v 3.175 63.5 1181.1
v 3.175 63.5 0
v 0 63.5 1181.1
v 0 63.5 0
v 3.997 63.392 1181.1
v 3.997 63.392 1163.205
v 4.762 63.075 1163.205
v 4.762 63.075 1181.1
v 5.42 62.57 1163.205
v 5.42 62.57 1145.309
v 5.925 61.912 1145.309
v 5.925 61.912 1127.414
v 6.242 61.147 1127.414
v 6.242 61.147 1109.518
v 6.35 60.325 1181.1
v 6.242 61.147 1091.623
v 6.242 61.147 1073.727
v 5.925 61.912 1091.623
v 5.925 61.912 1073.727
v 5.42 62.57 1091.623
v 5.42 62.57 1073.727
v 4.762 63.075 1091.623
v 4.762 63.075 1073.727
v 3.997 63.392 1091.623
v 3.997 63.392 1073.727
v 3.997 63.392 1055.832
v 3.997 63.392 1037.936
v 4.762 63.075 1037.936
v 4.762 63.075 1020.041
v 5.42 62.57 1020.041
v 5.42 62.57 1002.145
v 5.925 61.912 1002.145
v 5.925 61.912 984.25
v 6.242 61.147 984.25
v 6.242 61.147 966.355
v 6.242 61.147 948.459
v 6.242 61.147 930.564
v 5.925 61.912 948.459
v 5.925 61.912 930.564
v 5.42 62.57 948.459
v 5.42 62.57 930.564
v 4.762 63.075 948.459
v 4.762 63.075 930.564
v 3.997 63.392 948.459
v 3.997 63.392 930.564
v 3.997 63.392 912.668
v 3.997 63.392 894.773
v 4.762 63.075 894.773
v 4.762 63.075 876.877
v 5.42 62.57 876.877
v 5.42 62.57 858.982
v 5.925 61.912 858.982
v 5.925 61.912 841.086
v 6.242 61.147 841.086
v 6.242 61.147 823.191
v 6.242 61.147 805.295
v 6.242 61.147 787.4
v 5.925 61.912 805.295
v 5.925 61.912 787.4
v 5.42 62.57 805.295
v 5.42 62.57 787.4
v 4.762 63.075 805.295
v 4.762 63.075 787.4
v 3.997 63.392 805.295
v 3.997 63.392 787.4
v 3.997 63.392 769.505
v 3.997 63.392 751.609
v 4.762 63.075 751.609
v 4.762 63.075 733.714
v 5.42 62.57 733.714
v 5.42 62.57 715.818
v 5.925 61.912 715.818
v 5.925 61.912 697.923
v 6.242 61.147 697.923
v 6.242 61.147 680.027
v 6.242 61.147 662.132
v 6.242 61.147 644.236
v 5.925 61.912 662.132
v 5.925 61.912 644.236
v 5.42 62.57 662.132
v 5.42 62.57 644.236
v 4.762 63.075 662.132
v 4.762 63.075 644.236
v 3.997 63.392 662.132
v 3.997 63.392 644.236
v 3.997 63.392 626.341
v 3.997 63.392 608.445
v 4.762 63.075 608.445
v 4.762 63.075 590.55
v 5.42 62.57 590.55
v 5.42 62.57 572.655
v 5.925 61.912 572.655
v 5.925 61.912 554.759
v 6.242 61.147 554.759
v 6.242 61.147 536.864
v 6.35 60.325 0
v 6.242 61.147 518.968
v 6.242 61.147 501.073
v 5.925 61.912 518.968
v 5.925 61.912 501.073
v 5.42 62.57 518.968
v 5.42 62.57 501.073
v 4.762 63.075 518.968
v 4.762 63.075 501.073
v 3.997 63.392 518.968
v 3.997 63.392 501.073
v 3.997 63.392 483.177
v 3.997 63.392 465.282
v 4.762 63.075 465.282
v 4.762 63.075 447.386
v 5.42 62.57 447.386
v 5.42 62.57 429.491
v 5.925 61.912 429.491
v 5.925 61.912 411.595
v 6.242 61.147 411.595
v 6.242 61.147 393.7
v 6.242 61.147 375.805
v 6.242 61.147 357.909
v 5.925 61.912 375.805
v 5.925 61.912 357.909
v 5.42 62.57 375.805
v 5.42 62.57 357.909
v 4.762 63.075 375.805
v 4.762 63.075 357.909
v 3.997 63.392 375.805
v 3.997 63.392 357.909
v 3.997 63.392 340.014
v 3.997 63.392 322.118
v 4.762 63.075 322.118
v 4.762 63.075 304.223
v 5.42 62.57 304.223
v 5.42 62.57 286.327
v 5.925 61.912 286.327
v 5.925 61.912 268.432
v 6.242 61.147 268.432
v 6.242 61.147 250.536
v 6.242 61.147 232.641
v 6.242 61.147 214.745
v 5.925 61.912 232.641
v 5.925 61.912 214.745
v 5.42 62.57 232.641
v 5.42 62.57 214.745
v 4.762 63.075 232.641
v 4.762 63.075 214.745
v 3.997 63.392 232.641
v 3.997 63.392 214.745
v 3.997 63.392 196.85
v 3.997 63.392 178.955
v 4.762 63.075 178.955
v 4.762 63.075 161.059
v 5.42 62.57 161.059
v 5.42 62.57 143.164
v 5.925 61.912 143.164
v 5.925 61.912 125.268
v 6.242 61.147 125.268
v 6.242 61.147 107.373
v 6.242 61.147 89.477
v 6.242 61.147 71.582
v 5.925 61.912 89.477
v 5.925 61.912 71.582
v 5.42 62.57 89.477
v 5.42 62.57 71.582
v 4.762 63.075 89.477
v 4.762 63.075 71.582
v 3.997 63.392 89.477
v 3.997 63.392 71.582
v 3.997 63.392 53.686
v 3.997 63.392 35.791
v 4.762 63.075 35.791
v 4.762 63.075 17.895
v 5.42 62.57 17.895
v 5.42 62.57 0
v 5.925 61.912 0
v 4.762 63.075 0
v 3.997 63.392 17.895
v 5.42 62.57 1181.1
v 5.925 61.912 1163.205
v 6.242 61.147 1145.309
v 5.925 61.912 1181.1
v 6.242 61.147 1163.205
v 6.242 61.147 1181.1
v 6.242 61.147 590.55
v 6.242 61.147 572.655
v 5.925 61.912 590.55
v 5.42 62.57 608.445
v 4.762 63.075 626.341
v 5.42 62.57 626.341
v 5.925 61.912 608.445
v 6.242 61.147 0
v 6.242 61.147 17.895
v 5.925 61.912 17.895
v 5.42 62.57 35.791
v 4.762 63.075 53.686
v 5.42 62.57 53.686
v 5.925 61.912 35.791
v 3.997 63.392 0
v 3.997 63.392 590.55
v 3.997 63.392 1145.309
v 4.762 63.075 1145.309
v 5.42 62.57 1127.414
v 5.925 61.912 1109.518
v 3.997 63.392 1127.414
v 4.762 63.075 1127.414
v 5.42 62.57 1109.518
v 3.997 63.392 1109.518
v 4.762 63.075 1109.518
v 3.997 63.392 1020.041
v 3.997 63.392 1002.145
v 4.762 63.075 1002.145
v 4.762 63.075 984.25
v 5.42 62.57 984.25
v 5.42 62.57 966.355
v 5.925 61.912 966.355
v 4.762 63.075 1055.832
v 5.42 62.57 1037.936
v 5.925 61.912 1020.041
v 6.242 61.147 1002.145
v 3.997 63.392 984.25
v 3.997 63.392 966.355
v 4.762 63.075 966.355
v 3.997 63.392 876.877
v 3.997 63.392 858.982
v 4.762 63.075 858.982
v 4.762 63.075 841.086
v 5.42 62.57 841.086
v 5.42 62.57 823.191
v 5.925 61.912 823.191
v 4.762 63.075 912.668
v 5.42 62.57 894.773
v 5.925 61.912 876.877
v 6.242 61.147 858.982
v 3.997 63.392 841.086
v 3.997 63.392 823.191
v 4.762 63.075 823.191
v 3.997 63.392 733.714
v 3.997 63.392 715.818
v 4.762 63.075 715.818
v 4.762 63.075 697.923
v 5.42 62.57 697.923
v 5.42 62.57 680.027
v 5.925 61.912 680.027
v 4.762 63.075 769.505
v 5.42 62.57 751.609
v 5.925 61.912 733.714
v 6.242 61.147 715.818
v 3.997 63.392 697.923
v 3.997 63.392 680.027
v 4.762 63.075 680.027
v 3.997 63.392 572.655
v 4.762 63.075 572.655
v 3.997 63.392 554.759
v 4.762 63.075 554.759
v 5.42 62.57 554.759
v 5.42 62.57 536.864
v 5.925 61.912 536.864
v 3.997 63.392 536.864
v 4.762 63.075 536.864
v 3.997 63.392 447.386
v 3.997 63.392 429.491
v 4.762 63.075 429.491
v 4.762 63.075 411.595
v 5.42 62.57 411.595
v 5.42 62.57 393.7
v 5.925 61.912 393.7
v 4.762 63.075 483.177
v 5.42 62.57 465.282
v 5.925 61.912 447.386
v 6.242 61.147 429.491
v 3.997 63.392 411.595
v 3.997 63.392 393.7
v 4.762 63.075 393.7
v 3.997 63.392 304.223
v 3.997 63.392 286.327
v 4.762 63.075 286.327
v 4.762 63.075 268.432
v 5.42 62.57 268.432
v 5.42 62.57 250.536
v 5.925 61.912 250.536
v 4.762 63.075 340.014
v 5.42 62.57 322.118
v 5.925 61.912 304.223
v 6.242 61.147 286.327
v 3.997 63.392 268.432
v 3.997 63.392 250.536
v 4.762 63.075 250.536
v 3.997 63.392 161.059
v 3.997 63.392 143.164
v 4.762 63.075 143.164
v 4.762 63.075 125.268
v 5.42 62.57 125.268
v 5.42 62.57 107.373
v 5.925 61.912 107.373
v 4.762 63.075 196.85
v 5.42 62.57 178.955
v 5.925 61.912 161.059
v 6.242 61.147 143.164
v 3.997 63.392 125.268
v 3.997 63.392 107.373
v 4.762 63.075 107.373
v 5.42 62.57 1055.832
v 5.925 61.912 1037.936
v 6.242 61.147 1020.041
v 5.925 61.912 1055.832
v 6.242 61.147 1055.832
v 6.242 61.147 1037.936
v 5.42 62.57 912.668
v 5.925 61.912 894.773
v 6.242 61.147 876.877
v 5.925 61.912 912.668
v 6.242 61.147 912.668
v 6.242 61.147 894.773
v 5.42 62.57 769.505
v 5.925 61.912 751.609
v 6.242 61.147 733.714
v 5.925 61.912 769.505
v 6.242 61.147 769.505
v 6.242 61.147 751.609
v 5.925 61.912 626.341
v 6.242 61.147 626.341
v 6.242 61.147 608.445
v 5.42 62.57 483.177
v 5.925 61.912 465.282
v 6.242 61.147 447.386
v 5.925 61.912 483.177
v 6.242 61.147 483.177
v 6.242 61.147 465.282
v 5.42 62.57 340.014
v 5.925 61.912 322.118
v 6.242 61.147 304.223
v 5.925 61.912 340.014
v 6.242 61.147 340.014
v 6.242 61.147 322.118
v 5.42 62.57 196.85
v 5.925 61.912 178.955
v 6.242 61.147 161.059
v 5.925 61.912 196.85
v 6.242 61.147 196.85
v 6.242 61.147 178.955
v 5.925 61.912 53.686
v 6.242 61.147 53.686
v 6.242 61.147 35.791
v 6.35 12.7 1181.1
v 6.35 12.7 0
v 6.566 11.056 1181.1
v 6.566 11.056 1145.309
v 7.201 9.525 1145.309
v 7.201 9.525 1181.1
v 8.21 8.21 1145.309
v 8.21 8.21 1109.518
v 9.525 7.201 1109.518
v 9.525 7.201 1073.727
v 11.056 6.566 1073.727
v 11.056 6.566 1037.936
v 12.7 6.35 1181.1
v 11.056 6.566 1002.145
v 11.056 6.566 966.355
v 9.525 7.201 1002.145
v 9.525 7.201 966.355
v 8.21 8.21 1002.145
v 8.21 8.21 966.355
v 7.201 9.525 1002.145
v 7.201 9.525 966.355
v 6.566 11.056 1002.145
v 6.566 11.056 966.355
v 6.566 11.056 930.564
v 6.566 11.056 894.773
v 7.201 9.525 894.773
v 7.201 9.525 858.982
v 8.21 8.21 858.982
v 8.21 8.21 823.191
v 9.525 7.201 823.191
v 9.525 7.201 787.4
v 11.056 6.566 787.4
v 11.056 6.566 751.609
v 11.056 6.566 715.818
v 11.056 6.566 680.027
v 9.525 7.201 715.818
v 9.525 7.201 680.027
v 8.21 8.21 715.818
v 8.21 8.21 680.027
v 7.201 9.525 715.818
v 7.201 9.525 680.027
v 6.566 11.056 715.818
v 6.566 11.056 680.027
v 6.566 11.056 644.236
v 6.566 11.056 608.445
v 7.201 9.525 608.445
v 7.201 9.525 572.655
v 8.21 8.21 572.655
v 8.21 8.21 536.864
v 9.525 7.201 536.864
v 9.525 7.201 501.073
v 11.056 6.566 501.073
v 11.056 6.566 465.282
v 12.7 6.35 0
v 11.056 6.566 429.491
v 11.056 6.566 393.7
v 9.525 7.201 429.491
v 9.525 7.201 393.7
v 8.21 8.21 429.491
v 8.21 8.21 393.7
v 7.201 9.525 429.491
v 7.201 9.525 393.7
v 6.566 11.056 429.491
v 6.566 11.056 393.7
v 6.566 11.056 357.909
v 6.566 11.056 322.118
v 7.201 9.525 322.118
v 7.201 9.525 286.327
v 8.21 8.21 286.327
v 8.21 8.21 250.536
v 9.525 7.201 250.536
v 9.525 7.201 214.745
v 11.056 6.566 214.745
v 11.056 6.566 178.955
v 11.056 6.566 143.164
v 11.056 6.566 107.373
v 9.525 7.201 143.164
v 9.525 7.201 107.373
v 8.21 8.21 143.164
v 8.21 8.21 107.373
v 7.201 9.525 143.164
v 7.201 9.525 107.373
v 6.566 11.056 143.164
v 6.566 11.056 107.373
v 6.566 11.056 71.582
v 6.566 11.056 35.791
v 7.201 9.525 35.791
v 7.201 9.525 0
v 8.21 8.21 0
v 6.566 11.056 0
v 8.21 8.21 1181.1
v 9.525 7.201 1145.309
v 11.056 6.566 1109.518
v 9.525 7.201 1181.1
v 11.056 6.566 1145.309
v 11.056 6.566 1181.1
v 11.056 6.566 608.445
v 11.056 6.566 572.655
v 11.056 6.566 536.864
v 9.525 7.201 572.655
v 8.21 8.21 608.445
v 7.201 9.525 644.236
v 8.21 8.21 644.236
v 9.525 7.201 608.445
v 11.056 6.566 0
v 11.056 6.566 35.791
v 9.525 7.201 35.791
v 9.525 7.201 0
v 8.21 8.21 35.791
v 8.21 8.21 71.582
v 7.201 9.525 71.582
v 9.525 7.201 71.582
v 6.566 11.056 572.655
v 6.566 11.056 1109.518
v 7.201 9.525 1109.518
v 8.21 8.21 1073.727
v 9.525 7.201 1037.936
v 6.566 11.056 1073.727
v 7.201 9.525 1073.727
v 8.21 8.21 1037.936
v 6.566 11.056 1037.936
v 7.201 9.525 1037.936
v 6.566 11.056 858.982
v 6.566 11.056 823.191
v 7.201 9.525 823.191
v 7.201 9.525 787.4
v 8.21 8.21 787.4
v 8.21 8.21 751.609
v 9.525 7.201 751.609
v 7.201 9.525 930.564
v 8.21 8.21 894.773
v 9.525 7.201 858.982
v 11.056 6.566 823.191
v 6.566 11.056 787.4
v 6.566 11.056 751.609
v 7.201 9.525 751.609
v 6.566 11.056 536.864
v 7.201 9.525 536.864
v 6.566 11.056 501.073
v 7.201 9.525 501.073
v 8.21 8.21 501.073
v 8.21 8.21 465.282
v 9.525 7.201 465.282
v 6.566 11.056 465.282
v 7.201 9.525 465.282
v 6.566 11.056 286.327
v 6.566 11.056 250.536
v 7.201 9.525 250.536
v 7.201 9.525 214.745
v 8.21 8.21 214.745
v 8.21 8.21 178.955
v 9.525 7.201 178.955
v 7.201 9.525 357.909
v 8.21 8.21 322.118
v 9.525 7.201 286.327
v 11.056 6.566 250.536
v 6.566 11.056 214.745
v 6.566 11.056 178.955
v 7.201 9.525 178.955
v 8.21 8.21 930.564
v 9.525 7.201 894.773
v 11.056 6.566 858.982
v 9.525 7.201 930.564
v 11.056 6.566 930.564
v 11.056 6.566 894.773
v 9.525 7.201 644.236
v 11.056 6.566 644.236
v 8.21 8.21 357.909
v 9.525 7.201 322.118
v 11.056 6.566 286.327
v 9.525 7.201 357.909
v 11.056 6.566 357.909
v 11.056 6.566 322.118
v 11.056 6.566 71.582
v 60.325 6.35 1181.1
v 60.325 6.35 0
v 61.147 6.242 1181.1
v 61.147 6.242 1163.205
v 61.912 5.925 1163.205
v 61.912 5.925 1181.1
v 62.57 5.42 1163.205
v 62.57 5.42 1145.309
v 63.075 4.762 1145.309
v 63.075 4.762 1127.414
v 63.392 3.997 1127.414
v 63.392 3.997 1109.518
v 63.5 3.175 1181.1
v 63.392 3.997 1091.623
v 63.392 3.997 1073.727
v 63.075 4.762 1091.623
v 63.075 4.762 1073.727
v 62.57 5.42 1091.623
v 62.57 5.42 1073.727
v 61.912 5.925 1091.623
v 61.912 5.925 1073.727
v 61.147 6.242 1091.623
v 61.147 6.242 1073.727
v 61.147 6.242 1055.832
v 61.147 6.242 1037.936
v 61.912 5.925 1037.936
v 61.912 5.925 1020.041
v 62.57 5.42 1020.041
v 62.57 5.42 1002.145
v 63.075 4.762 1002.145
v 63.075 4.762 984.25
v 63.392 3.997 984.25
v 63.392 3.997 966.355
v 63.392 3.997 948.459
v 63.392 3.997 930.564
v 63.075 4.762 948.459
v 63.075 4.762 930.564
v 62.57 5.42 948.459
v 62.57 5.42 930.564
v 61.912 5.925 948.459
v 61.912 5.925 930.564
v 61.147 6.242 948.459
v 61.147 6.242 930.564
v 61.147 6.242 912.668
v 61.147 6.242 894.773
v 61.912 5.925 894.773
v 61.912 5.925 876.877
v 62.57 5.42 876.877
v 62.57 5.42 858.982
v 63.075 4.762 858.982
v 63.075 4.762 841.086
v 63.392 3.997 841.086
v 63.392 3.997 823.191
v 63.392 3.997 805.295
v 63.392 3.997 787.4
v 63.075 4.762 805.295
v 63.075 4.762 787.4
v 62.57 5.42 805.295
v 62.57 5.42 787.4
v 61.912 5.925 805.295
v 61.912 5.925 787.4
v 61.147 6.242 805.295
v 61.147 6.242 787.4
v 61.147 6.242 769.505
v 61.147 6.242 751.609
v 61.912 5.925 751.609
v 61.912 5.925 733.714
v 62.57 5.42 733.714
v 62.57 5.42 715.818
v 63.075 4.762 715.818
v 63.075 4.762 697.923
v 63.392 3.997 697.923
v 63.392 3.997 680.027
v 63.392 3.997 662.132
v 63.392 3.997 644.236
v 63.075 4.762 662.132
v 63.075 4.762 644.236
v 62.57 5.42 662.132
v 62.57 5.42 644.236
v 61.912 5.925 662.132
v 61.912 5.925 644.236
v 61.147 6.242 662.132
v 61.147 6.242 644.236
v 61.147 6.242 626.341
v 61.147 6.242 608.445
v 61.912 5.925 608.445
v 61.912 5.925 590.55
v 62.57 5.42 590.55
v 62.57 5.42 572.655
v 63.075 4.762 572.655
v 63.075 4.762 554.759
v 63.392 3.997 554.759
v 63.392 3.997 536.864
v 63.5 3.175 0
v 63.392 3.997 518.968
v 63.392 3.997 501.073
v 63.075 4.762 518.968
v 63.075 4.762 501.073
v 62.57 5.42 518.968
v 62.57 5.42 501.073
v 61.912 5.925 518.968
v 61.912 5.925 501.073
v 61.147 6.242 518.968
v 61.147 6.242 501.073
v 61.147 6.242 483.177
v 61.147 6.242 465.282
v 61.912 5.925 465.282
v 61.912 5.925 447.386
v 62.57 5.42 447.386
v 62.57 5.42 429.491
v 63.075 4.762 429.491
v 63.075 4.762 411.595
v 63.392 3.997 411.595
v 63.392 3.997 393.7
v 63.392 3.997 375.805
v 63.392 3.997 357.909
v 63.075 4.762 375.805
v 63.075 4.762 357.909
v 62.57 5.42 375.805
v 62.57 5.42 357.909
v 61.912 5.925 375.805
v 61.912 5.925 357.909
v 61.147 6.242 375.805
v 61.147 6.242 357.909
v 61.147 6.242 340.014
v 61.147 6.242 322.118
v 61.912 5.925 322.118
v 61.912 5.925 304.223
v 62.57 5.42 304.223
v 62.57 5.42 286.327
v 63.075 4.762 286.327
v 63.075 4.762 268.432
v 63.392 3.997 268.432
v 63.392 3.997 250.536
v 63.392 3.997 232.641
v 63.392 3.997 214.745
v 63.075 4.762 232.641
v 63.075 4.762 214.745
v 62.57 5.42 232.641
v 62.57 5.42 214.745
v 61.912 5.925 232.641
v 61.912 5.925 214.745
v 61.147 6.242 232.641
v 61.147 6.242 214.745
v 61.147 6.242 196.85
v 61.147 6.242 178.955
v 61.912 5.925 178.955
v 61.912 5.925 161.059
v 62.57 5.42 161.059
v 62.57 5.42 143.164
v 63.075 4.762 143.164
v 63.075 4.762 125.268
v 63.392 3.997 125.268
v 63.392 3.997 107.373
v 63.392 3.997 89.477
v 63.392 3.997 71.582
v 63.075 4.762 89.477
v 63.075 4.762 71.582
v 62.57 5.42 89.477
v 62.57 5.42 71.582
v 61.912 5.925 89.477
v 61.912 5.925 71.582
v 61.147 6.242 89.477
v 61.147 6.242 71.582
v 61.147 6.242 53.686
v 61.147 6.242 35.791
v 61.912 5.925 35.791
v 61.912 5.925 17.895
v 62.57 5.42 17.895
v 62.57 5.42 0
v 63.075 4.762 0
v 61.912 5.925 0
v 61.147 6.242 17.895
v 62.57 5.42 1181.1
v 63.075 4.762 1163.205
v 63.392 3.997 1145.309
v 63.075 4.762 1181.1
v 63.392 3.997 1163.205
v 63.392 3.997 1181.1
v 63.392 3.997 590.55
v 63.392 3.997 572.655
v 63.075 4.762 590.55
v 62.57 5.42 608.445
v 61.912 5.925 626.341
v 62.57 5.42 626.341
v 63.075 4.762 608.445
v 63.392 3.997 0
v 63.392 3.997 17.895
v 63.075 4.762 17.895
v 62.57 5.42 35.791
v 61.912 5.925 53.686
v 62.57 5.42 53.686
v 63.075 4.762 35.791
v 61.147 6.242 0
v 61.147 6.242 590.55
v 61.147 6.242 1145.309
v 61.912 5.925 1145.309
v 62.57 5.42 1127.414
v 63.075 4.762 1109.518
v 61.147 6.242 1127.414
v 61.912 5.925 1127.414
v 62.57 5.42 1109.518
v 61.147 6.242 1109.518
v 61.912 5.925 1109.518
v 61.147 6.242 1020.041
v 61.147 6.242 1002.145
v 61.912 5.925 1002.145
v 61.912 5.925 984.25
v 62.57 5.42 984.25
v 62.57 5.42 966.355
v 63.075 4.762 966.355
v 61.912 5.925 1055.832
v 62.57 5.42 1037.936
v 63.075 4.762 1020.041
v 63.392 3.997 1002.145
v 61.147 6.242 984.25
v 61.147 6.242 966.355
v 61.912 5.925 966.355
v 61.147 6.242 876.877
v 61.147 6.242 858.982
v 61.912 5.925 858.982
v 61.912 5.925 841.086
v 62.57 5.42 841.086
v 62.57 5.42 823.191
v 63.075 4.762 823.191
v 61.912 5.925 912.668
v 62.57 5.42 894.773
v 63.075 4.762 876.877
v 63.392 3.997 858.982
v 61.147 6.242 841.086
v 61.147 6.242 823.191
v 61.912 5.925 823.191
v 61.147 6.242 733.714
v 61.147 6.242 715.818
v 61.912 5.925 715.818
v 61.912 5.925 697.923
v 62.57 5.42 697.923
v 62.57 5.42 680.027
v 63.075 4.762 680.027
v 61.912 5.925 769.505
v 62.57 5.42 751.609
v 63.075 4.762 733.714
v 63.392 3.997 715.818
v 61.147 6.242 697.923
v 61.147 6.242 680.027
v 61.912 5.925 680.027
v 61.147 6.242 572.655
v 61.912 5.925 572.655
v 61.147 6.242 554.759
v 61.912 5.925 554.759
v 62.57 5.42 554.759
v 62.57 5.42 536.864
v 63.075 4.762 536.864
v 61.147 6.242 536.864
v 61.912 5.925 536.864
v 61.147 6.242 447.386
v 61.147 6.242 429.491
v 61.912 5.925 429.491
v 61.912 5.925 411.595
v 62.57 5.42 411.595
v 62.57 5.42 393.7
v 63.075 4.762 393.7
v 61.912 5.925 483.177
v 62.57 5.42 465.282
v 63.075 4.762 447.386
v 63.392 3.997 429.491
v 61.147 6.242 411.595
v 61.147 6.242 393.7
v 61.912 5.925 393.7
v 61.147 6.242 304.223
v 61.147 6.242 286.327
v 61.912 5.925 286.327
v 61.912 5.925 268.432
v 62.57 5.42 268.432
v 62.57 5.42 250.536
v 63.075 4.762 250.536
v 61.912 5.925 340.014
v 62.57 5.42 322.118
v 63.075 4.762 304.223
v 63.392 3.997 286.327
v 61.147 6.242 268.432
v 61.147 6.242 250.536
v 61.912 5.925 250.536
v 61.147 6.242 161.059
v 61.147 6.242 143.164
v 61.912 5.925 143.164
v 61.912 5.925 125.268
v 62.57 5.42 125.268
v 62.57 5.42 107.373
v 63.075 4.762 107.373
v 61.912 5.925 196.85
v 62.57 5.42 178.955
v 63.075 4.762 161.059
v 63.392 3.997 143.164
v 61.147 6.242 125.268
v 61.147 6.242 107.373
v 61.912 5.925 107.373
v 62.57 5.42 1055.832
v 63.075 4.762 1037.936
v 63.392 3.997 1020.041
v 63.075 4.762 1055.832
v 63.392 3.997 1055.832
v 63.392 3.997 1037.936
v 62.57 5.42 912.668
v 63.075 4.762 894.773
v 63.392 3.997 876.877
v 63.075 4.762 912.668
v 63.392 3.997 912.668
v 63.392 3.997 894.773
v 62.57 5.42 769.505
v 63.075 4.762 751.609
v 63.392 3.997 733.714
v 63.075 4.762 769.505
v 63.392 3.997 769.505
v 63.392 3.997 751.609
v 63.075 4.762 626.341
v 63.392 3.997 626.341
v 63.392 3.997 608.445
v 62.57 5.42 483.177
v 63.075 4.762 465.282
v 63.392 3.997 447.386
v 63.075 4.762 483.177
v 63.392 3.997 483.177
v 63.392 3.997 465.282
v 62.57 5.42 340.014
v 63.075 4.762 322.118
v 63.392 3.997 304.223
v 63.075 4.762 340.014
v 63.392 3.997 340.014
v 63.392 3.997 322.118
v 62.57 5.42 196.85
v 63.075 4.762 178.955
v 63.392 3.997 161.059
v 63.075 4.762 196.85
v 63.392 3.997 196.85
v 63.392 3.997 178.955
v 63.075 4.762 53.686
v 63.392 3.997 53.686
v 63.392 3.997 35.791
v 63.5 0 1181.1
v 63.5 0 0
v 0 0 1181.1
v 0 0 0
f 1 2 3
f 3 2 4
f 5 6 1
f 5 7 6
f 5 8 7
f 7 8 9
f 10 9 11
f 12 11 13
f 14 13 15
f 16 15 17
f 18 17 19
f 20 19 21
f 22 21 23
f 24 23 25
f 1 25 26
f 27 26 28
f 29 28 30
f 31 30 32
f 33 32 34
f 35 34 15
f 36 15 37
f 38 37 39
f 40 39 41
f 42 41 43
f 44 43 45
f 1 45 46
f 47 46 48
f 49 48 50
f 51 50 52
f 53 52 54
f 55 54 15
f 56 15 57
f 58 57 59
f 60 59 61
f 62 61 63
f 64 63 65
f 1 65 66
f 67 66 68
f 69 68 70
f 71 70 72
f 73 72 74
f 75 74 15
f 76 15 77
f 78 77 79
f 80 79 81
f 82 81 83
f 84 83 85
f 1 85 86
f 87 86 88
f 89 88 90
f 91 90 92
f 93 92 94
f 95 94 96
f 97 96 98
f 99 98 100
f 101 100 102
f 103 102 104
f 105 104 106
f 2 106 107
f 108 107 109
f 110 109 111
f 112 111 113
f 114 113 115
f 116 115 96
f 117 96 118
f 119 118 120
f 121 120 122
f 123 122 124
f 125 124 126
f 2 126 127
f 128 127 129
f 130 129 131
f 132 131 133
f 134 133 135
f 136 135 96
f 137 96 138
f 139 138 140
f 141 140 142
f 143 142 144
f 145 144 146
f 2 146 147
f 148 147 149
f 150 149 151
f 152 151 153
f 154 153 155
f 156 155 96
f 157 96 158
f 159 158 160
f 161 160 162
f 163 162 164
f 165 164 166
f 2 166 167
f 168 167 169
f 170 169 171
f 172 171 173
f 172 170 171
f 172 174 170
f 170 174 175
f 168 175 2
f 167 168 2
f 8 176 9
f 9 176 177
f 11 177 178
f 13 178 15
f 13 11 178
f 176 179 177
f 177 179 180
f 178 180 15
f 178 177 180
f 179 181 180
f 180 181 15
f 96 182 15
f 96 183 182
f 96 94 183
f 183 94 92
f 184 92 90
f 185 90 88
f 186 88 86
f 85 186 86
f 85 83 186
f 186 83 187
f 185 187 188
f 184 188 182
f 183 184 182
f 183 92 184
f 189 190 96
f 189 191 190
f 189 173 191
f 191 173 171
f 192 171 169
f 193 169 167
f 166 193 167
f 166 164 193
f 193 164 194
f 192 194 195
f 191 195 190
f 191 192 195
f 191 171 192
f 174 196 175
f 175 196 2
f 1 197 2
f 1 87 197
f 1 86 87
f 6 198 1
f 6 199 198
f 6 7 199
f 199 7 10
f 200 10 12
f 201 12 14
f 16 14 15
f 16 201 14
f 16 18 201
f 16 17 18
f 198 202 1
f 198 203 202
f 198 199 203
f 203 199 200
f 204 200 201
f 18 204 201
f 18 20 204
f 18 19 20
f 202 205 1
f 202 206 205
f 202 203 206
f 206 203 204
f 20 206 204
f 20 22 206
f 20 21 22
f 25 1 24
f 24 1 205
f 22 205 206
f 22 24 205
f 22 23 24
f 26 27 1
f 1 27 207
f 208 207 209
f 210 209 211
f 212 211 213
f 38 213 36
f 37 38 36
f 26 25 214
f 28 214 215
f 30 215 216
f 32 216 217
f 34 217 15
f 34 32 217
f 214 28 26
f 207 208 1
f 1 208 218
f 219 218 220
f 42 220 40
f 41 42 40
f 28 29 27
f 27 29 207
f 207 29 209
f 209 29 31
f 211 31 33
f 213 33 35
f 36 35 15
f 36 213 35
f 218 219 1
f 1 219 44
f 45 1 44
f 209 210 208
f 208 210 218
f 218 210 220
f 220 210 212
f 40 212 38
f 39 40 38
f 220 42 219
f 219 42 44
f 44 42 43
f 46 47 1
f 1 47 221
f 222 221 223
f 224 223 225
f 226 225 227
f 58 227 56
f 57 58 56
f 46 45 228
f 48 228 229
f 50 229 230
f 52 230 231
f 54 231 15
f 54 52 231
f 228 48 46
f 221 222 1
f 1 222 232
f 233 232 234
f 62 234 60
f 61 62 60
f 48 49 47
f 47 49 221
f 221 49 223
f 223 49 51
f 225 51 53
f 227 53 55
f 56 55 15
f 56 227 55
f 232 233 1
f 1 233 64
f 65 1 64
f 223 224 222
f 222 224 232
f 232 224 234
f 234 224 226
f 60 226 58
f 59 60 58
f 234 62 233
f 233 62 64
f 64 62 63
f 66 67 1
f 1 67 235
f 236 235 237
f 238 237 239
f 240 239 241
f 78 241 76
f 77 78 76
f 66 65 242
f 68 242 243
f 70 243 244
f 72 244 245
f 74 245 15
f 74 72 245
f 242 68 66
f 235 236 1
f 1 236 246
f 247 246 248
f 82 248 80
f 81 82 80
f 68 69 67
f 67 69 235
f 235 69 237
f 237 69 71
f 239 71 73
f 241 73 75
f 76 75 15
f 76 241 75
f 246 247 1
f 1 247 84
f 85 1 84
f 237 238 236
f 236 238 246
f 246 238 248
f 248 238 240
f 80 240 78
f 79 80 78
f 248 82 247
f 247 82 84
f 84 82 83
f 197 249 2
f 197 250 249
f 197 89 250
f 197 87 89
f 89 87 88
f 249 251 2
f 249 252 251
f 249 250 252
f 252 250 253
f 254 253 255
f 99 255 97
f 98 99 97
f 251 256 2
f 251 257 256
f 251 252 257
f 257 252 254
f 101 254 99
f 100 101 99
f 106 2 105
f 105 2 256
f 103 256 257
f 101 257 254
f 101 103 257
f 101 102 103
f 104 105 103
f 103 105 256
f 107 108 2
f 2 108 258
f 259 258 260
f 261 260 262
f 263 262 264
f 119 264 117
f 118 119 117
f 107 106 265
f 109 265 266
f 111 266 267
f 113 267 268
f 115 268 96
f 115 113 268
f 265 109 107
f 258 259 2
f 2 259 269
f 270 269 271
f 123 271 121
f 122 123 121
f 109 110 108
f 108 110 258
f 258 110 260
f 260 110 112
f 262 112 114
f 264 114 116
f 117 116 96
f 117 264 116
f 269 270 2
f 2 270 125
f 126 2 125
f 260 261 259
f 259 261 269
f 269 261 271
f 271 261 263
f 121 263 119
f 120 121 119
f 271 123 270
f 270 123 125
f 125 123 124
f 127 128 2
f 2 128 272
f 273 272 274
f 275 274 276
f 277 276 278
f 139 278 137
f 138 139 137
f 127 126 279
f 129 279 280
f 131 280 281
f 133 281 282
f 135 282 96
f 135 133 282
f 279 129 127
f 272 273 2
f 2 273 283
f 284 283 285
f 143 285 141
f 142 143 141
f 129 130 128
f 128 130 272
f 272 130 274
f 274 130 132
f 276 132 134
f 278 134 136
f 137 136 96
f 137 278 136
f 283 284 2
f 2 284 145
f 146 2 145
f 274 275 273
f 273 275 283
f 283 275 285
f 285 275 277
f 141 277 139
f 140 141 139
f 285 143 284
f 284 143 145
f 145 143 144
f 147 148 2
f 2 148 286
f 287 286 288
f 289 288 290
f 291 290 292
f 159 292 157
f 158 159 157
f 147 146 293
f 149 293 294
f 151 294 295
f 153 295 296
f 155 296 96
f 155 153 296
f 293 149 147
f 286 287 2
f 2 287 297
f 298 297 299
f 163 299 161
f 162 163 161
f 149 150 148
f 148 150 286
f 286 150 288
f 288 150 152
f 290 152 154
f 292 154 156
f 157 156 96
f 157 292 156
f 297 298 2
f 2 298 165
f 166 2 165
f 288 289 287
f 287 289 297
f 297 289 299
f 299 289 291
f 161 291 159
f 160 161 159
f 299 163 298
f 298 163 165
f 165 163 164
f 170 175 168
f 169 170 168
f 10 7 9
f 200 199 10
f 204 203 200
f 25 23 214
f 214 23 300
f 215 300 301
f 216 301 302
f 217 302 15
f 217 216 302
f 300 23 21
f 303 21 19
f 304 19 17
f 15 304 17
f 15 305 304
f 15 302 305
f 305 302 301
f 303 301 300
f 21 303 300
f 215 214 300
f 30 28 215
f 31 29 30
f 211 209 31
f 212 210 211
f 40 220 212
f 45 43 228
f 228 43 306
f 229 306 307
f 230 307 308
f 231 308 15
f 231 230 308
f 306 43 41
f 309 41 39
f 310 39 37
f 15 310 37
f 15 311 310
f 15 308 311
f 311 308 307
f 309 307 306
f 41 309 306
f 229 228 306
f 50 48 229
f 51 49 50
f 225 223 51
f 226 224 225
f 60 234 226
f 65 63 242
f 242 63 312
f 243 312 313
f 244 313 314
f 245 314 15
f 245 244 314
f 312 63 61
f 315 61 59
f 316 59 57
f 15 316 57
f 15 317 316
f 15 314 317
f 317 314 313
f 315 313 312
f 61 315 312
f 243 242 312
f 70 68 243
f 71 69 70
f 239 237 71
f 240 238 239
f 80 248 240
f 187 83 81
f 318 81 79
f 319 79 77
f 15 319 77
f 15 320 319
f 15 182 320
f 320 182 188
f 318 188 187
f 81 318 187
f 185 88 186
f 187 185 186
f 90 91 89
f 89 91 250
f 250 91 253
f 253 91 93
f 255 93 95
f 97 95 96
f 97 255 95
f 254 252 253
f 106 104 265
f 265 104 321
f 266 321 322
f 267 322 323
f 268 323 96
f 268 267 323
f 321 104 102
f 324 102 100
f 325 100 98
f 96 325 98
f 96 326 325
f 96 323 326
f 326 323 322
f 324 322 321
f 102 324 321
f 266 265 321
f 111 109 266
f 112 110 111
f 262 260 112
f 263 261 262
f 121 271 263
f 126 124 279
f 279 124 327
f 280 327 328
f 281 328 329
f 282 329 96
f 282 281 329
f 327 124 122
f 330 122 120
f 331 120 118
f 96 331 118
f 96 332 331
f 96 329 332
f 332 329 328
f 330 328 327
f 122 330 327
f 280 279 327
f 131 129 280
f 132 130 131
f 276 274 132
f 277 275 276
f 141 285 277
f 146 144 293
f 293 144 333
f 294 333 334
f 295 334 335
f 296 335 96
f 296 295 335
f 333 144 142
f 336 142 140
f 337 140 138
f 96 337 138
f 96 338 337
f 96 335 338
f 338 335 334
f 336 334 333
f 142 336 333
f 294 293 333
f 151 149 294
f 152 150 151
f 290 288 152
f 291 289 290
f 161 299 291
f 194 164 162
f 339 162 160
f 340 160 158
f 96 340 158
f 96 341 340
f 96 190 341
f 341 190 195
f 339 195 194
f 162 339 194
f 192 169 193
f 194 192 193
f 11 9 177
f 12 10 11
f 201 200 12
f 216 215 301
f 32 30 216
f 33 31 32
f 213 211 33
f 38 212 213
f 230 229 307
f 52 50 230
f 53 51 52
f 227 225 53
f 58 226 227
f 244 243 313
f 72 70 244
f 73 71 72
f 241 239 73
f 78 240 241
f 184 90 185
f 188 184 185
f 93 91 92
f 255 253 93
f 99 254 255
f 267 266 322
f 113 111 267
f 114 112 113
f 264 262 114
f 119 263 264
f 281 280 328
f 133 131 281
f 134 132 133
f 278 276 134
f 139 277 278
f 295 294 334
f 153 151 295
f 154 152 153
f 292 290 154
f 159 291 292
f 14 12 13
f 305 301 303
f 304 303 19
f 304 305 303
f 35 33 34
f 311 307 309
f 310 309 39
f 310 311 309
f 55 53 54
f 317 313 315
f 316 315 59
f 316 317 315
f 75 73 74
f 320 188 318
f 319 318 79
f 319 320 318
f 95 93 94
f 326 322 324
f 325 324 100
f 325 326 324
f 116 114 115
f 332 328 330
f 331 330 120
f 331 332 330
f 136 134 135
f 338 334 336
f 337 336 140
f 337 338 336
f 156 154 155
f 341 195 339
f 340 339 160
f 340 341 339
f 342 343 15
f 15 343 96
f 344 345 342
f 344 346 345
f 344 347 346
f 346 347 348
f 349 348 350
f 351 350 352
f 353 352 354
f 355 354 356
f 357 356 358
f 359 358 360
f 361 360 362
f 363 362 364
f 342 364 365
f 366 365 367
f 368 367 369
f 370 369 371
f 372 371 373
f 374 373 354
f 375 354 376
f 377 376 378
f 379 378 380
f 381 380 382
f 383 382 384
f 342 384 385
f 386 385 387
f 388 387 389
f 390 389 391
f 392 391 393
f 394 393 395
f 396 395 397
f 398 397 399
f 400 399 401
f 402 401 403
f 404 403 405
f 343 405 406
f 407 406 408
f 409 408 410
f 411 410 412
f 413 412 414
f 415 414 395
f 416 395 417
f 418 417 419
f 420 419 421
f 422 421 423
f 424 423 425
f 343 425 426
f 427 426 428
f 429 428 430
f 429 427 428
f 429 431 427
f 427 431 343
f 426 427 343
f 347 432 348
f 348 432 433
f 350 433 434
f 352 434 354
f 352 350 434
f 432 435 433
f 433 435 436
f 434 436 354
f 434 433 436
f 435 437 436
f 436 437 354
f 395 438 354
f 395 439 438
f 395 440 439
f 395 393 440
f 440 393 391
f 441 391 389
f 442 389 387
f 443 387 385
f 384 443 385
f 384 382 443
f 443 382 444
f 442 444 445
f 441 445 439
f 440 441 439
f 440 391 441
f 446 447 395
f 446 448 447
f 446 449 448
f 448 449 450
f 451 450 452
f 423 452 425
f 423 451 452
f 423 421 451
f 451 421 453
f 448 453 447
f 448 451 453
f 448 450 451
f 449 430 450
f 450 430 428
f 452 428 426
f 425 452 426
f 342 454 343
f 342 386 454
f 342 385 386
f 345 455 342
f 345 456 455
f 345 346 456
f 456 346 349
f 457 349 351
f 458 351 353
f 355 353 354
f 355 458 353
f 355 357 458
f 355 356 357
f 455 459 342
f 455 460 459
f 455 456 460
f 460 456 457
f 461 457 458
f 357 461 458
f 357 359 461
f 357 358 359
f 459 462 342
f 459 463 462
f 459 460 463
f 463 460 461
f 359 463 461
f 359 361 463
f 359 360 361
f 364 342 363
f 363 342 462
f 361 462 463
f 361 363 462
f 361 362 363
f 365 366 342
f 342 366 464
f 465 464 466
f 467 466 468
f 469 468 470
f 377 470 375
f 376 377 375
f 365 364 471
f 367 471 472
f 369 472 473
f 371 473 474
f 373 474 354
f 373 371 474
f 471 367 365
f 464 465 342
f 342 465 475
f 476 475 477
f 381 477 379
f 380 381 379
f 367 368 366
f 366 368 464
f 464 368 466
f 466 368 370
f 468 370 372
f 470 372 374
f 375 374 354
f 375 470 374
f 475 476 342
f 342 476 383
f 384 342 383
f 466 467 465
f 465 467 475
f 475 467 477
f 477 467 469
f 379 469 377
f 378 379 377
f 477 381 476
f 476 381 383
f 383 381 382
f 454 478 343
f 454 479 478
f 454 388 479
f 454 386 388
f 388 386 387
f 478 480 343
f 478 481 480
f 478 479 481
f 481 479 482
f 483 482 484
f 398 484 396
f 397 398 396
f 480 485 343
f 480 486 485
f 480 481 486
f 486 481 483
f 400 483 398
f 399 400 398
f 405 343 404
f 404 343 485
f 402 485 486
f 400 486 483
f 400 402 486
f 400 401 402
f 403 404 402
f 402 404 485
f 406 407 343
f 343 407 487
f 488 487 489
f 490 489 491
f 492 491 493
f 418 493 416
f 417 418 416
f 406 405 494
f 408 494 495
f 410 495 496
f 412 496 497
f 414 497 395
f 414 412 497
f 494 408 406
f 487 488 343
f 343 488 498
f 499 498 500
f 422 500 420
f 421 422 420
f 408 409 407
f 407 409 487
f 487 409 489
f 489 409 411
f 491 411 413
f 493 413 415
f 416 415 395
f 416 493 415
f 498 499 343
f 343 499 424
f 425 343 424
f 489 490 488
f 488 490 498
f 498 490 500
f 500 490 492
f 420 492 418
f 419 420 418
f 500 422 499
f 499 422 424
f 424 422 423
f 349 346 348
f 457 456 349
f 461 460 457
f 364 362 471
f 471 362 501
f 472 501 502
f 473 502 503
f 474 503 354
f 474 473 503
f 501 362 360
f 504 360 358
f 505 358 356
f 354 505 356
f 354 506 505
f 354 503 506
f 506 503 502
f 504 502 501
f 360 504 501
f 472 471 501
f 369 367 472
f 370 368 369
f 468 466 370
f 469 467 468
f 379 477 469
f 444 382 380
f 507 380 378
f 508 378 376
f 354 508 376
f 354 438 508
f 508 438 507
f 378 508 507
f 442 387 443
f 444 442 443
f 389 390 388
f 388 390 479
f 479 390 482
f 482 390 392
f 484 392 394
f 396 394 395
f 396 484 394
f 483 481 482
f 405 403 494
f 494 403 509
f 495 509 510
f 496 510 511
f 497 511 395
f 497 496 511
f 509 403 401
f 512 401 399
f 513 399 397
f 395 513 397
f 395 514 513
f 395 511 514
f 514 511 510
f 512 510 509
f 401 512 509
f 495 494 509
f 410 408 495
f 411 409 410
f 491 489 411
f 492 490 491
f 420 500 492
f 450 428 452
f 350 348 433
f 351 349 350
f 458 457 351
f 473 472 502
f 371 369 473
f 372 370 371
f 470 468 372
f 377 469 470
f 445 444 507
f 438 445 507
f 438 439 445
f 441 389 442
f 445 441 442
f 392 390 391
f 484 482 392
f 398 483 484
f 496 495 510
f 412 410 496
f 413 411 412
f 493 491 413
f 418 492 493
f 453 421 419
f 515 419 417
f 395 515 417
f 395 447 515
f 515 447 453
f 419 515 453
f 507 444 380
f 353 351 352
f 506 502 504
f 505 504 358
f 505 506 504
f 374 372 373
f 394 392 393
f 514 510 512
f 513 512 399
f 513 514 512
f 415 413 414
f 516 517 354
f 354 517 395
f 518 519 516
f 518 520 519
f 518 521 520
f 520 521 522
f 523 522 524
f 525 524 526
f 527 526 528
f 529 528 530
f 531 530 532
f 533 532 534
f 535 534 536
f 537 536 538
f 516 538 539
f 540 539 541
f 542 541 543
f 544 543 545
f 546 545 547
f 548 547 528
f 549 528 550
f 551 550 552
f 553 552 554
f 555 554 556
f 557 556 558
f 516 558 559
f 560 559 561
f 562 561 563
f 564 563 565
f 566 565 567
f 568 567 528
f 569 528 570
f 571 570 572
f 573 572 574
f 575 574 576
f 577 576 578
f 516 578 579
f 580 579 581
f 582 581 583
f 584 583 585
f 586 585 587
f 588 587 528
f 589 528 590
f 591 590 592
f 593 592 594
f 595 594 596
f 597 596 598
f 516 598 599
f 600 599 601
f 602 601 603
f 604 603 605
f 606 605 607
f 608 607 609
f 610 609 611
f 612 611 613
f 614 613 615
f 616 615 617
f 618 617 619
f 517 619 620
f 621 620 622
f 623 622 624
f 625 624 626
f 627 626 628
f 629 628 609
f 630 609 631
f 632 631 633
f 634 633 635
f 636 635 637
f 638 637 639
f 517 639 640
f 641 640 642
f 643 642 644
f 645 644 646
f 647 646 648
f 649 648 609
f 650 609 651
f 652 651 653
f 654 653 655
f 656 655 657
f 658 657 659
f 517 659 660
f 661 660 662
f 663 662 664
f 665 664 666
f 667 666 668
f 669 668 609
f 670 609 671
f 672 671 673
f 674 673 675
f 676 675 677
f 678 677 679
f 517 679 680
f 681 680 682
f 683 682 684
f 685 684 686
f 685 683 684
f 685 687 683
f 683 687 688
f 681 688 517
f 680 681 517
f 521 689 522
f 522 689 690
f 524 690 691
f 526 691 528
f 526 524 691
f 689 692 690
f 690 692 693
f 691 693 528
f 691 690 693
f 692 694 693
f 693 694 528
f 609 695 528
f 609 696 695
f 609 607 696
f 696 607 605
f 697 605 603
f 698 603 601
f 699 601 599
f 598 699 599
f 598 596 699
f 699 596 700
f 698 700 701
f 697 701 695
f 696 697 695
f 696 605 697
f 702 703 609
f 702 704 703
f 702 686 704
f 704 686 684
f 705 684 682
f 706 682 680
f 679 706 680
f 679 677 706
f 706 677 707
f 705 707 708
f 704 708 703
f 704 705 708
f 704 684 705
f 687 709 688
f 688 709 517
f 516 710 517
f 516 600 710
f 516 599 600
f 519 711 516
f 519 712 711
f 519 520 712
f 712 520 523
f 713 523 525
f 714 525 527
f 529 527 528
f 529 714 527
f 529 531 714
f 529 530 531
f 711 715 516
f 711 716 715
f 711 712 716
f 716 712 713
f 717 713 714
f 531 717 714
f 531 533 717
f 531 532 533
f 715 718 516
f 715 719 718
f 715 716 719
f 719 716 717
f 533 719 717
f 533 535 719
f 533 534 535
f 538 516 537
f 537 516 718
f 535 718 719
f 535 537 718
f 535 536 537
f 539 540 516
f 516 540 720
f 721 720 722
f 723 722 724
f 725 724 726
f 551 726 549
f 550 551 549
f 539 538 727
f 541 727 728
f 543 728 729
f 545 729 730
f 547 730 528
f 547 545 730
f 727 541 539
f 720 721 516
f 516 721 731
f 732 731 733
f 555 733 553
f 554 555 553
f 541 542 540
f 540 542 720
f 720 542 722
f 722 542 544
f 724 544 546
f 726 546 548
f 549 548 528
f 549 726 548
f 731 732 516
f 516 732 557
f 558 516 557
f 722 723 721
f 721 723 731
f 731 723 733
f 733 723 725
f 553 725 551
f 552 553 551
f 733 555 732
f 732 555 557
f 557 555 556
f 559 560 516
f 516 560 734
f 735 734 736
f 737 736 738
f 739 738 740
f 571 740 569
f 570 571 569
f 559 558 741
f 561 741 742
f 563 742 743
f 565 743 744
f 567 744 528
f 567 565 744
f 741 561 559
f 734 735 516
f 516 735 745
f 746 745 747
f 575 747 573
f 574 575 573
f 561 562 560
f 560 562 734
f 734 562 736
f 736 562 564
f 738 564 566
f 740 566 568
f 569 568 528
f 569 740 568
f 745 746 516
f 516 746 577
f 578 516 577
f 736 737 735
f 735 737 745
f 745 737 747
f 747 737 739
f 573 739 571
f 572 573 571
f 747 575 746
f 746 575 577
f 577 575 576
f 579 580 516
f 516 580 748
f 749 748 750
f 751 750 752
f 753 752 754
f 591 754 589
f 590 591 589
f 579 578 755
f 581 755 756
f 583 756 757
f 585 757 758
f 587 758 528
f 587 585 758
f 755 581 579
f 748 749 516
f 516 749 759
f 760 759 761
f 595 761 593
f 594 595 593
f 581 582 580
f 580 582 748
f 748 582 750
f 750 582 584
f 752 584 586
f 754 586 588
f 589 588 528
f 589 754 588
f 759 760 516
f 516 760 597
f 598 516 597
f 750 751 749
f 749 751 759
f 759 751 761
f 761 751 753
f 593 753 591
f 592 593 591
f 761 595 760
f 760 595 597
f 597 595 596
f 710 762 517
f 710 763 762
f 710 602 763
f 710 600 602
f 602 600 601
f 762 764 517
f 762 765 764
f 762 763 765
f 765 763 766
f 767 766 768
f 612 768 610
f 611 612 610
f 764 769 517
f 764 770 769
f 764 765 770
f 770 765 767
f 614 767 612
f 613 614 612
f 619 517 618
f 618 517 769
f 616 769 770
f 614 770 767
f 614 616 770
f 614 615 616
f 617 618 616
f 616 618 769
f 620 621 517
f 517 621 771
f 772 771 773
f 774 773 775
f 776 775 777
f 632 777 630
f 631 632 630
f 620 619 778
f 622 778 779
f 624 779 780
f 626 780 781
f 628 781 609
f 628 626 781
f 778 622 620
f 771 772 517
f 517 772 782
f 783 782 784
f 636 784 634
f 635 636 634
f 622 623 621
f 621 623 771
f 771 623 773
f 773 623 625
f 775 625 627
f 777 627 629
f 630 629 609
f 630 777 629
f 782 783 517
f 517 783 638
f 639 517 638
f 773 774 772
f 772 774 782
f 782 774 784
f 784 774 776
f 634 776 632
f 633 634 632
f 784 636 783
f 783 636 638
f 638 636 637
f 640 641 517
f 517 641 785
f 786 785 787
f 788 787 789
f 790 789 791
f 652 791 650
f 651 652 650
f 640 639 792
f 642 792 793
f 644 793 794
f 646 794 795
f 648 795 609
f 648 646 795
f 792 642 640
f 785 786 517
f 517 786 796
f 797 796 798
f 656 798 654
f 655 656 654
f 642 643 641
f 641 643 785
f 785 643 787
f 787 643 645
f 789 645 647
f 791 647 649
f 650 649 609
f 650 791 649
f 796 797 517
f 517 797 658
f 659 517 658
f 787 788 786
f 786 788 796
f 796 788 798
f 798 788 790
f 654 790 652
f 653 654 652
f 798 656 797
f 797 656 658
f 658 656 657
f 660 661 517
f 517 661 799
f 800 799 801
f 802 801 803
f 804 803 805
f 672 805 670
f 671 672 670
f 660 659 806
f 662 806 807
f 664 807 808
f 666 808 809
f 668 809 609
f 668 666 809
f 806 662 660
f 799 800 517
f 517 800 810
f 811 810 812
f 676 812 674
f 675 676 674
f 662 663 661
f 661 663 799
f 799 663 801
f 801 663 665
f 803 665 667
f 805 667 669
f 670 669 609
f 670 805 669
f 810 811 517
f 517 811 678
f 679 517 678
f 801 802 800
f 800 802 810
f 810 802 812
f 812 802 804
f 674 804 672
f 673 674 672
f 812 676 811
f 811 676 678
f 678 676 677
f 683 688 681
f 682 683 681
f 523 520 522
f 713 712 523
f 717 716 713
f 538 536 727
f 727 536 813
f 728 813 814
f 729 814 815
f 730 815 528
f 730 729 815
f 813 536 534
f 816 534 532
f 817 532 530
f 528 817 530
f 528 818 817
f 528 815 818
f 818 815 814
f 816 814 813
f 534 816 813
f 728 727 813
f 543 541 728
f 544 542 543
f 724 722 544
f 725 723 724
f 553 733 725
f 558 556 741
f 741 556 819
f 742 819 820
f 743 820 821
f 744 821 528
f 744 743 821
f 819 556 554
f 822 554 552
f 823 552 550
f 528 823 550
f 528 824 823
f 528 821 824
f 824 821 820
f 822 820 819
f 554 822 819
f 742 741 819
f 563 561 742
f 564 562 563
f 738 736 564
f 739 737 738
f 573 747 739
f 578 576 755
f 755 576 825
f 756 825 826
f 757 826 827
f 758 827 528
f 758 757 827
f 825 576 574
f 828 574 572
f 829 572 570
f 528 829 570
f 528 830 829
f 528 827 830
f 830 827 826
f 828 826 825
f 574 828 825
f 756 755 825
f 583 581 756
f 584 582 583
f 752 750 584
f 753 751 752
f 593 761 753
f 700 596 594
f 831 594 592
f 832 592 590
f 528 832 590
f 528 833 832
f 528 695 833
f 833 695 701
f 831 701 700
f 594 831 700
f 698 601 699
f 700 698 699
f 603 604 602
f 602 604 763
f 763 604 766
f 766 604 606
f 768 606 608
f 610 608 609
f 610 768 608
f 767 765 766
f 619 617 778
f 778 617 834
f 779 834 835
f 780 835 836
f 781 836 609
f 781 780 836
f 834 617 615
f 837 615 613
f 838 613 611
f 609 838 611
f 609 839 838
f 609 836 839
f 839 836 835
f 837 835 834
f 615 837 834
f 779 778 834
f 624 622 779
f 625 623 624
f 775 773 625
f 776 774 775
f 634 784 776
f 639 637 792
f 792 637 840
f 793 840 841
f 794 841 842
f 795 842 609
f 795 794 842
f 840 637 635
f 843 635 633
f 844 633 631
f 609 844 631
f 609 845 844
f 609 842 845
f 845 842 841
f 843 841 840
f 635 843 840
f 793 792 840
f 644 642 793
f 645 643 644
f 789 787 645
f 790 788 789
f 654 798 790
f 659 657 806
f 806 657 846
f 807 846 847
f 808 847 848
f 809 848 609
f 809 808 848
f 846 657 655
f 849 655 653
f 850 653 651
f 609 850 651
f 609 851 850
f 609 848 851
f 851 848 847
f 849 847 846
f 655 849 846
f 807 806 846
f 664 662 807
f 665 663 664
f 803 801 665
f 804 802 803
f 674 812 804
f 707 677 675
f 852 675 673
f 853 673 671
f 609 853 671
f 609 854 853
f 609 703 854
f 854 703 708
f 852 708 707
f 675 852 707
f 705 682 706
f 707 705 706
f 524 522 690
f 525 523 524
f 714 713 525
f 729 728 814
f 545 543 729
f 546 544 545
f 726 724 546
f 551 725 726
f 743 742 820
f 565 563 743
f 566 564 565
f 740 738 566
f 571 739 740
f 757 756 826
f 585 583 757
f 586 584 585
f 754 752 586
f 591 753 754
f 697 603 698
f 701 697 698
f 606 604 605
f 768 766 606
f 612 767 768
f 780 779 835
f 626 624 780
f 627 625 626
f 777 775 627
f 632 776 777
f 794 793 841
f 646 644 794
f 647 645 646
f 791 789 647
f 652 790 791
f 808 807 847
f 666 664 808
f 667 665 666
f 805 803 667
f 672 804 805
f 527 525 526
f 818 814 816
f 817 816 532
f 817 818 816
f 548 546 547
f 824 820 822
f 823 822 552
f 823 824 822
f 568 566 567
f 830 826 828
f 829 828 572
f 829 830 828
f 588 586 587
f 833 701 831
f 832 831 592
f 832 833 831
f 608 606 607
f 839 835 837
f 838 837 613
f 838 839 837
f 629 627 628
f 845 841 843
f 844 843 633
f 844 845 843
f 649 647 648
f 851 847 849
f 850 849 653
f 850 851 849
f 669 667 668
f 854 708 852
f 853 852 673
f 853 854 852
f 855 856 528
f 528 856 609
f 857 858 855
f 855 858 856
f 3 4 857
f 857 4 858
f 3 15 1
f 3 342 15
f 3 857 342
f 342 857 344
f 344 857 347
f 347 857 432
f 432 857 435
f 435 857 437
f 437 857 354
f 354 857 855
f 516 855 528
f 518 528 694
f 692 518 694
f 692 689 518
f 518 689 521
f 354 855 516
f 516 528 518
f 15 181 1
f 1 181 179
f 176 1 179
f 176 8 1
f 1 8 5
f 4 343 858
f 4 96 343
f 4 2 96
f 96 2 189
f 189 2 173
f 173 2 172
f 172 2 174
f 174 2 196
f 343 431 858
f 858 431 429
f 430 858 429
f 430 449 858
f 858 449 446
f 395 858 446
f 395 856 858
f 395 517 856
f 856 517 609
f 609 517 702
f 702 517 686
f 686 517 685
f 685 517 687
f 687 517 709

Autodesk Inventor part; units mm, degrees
ref_plane "YZ Plane" through (0, 0, 0) normal (1, 0, 0) x (0, 1, 0)
ref_plane "XZ Plane" through (0, 0, 0) normal (0, 1, 0) x (-1, 0, 0)
ref_plane "XY Plane" through (0, 0, 0) normal (0, 0, 1) x (1, 0, 0)
sketch "Sketch1" plane through (0, 0, 0) normal (0, 0, 1) x (1, 0, 0)
  line L0 (0, 0) -> (0, 63.5)
  line L1 (0, 63.5) -> (3.175, 63.5)
  line L2 (6.35, 60.325) -> (6.35, 12.7)
  line L3 (12.7, 6.35) -> (60.325, 6.35)
  line L4 (63.5, 3.175) -> (63.5, 0)
  line L5 (63.5, 0) -> (0, 0)
  arc A0 (6.35, 12.7) -> (12.7, 6.35) centre (12.7, 12.7) ccw
  arc A1 (63.5, 3.175) -> (60.325, 6.35) centre (60.325, 3.175) ccw
  arc A2 (6.35, 60.325) -> (3.175, 63.5) centre (3.175, 60.325) ccw
  dimension "d0" = 63.5
  dimension "d1" = 6.35
  dimension "d2" = 6.35
  dimension "d3" = 3.175
extrude "Extrusion1" add sketch "Sketch1" along normal blind 1181.1
properties part number "GE-12019-06" material "Aluminum-6061"
